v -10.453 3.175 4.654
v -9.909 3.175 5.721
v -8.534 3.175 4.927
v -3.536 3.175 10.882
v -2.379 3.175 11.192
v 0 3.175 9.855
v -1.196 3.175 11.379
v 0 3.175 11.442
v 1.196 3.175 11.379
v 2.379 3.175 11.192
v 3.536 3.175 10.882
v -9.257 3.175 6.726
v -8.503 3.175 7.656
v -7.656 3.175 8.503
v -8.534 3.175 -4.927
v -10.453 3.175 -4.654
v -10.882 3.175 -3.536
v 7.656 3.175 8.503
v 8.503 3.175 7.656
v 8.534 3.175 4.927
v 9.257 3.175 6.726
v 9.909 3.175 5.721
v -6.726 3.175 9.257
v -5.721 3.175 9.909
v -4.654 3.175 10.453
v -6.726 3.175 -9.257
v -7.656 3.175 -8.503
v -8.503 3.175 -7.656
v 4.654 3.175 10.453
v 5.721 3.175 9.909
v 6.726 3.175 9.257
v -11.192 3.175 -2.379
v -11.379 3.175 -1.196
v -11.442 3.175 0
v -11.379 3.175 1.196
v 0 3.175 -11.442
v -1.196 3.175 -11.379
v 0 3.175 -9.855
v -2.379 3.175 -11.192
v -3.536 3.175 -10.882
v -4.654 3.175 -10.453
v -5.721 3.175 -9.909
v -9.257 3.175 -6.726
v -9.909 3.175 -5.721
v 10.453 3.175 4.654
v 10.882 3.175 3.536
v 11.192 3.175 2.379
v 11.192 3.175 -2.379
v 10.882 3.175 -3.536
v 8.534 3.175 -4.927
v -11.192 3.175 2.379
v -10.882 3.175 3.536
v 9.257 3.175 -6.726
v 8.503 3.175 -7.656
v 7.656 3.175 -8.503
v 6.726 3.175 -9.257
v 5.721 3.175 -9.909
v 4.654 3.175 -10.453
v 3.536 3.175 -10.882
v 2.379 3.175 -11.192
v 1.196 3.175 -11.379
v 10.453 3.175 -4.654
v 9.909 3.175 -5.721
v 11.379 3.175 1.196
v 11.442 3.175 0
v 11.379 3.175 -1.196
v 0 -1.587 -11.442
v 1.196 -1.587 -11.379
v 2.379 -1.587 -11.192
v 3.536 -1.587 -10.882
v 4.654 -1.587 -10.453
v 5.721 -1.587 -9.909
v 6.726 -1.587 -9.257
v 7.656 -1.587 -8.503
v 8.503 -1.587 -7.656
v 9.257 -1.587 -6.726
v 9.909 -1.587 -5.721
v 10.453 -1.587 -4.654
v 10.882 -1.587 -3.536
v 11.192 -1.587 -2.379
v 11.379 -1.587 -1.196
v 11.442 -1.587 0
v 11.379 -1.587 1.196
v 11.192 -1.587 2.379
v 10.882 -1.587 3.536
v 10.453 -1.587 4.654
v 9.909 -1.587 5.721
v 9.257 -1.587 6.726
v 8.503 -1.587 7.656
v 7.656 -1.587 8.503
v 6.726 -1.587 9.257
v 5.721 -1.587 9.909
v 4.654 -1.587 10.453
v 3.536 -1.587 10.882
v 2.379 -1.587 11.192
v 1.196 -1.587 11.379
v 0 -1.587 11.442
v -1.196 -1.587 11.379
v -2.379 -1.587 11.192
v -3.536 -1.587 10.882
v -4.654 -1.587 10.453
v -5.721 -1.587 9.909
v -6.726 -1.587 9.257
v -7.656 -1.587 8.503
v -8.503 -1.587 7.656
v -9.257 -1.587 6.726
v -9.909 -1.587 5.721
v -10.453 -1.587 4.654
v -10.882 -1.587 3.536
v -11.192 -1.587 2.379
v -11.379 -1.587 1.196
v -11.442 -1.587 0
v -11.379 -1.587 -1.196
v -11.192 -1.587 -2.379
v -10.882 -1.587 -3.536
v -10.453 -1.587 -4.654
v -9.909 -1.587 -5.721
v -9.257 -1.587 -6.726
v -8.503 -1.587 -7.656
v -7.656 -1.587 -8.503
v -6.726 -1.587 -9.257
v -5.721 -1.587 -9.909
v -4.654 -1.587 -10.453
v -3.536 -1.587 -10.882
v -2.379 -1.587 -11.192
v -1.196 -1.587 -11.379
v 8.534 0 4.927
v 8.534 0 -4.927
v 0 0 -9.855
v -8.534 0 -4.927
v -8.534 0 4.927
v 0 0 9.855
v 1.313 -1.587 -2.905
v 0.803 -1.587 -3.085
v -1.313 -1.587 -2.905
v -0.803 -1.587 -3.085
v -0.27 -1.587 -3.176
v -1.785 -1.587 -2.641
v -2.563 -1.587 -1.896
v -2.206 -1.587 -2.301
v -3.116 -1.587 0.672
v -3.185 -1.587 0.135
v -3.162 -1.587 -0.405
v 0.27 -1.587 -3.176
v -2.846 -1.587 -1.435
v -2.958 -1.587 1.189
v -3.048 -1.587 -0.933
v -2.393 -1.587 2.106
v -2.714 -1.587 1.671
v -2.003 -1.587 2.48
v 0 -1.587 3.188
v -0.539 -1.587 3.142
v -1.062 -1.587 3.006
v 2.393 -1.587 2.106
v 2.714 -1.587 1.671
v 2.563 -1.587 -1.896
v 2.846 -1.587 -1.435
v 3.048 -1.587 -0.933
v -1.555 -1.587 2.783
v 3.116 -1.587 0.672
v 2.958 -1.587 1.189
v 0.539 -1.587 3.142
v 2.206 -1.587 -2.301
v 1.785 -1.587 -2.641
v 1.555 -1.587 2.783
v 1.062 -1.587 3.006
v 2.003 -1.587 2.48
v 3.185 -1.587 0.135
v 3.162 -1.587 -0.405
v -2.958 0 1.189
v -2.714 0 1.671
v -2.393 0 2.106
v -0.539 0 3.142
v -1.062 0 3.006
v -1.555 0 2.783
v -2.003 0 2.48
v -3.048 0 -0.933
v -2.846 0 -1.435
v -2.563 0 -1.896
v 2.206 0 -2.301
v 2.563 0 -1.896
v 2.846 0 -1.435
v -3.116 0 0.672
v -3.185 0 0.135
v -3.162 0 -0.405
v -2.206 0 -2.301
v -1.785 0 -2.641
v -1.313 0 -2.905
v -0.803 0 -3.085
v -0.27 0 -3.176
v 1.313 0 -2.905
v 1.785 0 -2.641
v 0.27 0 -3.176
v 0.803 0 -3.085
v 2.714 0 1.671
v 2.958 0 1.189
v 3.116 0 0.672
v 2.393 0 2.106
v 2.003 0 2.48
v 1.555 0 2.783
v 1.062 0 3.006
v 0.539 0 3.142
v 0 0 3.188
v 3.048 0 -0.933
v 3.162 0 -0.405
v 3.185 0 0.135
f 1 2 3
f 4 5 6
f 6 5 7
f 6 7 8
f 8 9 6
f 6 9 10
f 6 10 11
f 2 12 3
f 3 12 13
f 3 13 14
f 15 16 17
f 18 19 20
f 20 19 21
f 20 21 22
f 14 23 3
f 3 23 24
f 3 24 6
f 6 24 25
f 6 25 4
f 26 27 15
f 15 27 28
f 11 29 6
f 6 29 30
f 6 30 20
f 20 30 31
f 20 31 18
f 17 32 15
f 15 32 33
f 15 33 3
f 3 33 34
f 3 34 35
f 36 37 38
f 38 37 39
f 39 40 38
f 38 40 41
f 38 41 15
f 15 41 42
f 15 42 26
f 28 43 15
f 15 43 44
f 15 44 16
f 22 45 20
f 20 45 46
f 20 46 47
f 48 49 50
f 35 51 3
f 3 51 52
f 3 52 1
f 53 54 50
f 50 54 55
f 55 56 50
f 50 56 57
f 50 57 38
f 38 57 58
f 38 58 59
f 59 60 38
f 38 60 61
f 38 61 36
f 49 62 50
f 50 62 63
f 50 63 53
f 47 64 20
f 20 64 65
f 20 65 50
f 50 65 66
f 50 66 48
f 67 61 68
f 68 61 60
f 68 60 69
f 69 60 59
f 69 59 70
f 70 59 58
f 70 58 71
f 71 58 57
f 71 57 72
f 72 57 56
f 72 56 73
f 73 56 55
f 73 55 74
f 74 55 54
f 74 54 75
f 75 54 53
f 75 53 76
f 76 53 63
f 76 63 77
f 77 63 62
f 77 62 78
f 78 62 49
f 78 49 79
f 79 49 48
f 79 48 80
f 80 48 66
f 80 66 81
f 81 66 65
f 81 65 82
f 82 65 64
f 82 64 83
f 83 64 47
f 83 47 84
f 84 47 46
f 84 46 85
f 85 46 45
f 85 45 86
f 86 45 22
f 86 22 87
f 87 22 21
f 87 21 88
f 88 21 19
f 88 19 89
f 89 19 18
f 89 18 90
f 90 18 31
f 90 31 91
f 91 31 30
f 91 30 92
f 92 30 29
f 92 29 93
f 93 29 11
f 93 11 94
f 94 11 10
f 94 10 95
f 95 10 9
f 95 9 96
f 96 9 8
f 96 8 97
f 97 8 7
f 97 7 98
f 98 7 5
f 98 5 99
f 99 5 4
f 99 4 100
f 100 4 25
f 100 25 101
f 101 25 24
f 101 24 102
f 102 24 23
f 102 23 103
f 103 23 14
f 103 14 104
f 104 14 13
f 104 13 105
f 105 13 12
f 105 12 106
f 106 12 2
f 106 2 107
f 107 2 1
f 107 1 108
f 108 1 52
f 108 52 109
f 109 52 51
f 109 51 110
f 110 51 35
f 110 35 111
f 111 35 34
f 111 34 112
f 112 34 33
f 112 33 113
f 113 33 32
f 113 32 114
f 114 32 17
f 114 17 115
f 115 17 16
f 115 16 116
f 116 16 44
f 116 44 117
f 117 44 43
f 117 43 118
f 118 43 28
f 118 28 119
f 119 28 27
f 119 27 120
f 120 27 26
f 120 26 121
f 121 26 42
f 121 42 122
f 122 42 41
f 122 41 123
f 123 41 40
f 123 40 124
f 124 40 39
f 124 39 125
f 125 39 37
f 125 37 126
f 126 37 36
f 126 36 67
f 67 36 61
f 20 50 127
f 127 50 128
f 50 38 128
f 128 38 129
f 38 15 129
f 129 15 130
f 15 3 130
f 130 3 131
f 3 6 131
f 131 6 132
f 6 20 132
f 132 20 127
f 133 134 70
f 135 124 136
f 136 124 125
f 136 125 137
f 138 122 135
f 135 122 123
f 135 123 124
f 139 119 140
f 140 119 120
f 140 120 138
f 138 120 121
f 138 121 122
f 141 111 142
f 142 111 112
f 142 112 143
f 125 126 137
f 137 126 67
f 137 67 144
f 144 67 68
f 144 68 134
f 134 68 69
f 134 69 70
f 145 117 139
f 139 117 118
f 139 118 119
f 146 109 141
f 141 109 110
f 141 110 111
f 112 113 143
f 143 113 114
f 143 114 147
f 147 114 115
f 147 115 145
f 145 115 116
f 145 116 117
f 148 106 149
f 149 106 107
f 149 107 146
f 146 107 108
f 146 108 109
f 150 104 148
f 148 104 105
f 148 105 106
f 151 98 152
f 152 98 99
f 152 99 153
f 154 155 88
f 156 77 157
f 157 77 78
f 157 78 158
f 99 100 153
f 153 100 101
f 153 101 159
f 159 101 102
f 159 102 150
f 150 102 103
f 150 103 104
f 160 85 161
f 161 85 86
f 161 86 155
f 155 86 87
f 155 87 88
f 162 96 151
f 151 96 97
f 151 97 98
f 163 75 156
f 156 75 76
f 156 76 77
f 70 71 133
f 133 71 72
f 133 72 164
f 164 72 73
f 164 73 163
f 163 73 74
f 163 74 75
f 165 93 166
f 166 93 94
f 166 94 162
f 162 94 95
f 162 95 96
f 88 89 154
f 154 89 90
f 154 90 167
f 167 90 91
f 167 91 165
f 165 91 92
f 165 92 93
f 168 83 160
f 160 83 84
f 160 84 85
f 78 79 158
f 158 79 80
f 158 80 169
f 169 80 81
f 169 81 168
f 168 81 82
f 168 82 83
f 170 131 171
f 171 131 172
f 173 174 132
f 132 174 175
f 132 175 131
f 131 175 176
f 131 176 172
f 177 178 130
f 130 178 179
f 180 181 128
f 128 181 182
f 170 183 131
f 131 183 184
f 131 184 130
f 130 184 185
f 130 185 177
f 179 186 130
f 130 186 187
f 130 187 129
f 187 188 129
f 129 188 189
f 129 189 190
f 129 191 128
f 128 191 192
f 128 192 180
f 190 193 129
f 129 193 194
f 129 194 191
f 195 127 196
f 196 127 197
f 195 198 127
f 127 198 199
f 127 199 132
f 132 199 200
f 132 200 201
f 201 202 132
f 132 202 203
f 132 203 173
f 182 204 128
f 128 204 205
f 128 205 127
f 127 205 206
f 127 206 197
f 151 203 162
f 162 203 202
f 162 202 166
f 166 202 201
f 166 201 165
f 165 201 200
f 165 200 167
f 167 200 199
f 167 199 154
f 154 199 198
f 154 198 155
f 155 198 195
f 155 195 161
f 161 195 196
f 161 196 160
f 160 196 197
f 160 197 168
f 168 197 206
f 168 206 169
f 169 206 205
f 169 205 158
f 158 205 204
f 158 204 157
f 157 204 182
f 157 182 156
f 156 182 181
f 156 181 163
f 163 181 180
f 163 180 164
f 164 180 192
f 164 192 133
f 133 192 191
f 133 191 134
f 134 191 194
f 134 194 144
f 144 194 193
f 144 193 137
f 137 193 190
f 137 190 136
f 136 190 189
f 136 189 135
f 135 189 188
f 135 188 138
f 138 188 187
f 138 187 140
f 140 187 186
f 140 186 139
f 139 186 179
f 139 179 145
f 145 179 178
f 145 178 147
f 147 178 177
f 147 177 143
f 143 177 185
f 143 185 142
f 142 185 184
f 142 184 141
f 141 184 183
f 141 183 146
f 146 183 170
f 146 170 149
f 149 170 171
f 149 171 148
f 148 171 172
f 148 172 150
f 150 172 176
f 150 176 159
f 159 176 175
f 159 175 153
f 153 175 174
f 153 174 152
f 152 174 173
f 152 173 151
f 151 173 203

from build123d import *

# Parameters (mm, degrees)
SKETCH1_R           = 11.442176275
BOSS_EXTRUDE1_DEPTH = 3.175
BOSS_EXTRUDE2_START = -1.5875
SKETCH2_R           = 11.442176275
SKETCH2_R_2         = 3.1877
BOSS_EXTRUDE2_DEPTH = 1.5875


with BuildPart() as part:
    # Sketch1 → Boss-Extrude1 (new body)
    with BuildSketch(Plane(origin=(0, 0, 0), x_dir=(1, 0, 0), z_dir=(0, 1, 0))):
        Circle(SKETCH1_R)
        Polygon((8.5344, 4.927338137), (0, 9.854676275), (-8.5344, 4.927338137), (-8.5344, -4.927338137), (0, -9.854676275), (8.5344, -4.927338137), align=None, mode=Mode.SUBTRACT)
    extrude(amount=BOSS_EXTRUDE1_DEPTH)

    # Sketch2 → Boss-Extrude2 (add)
    with BuildSketch(Plane(origin=(0, 0, 0), x_dir=(1, 0, 0), z_dir=(0, 1, 0)).offset(BOSS_EXTRUDE2_START)):
        Circle(SKETCH2_R)
        Circle(SKETCH2_R_2, mode=Mode.SUBTRACT)
    extrude(amount=BOSS_EXTRUDE2_DEPTH)


solid = part.part
